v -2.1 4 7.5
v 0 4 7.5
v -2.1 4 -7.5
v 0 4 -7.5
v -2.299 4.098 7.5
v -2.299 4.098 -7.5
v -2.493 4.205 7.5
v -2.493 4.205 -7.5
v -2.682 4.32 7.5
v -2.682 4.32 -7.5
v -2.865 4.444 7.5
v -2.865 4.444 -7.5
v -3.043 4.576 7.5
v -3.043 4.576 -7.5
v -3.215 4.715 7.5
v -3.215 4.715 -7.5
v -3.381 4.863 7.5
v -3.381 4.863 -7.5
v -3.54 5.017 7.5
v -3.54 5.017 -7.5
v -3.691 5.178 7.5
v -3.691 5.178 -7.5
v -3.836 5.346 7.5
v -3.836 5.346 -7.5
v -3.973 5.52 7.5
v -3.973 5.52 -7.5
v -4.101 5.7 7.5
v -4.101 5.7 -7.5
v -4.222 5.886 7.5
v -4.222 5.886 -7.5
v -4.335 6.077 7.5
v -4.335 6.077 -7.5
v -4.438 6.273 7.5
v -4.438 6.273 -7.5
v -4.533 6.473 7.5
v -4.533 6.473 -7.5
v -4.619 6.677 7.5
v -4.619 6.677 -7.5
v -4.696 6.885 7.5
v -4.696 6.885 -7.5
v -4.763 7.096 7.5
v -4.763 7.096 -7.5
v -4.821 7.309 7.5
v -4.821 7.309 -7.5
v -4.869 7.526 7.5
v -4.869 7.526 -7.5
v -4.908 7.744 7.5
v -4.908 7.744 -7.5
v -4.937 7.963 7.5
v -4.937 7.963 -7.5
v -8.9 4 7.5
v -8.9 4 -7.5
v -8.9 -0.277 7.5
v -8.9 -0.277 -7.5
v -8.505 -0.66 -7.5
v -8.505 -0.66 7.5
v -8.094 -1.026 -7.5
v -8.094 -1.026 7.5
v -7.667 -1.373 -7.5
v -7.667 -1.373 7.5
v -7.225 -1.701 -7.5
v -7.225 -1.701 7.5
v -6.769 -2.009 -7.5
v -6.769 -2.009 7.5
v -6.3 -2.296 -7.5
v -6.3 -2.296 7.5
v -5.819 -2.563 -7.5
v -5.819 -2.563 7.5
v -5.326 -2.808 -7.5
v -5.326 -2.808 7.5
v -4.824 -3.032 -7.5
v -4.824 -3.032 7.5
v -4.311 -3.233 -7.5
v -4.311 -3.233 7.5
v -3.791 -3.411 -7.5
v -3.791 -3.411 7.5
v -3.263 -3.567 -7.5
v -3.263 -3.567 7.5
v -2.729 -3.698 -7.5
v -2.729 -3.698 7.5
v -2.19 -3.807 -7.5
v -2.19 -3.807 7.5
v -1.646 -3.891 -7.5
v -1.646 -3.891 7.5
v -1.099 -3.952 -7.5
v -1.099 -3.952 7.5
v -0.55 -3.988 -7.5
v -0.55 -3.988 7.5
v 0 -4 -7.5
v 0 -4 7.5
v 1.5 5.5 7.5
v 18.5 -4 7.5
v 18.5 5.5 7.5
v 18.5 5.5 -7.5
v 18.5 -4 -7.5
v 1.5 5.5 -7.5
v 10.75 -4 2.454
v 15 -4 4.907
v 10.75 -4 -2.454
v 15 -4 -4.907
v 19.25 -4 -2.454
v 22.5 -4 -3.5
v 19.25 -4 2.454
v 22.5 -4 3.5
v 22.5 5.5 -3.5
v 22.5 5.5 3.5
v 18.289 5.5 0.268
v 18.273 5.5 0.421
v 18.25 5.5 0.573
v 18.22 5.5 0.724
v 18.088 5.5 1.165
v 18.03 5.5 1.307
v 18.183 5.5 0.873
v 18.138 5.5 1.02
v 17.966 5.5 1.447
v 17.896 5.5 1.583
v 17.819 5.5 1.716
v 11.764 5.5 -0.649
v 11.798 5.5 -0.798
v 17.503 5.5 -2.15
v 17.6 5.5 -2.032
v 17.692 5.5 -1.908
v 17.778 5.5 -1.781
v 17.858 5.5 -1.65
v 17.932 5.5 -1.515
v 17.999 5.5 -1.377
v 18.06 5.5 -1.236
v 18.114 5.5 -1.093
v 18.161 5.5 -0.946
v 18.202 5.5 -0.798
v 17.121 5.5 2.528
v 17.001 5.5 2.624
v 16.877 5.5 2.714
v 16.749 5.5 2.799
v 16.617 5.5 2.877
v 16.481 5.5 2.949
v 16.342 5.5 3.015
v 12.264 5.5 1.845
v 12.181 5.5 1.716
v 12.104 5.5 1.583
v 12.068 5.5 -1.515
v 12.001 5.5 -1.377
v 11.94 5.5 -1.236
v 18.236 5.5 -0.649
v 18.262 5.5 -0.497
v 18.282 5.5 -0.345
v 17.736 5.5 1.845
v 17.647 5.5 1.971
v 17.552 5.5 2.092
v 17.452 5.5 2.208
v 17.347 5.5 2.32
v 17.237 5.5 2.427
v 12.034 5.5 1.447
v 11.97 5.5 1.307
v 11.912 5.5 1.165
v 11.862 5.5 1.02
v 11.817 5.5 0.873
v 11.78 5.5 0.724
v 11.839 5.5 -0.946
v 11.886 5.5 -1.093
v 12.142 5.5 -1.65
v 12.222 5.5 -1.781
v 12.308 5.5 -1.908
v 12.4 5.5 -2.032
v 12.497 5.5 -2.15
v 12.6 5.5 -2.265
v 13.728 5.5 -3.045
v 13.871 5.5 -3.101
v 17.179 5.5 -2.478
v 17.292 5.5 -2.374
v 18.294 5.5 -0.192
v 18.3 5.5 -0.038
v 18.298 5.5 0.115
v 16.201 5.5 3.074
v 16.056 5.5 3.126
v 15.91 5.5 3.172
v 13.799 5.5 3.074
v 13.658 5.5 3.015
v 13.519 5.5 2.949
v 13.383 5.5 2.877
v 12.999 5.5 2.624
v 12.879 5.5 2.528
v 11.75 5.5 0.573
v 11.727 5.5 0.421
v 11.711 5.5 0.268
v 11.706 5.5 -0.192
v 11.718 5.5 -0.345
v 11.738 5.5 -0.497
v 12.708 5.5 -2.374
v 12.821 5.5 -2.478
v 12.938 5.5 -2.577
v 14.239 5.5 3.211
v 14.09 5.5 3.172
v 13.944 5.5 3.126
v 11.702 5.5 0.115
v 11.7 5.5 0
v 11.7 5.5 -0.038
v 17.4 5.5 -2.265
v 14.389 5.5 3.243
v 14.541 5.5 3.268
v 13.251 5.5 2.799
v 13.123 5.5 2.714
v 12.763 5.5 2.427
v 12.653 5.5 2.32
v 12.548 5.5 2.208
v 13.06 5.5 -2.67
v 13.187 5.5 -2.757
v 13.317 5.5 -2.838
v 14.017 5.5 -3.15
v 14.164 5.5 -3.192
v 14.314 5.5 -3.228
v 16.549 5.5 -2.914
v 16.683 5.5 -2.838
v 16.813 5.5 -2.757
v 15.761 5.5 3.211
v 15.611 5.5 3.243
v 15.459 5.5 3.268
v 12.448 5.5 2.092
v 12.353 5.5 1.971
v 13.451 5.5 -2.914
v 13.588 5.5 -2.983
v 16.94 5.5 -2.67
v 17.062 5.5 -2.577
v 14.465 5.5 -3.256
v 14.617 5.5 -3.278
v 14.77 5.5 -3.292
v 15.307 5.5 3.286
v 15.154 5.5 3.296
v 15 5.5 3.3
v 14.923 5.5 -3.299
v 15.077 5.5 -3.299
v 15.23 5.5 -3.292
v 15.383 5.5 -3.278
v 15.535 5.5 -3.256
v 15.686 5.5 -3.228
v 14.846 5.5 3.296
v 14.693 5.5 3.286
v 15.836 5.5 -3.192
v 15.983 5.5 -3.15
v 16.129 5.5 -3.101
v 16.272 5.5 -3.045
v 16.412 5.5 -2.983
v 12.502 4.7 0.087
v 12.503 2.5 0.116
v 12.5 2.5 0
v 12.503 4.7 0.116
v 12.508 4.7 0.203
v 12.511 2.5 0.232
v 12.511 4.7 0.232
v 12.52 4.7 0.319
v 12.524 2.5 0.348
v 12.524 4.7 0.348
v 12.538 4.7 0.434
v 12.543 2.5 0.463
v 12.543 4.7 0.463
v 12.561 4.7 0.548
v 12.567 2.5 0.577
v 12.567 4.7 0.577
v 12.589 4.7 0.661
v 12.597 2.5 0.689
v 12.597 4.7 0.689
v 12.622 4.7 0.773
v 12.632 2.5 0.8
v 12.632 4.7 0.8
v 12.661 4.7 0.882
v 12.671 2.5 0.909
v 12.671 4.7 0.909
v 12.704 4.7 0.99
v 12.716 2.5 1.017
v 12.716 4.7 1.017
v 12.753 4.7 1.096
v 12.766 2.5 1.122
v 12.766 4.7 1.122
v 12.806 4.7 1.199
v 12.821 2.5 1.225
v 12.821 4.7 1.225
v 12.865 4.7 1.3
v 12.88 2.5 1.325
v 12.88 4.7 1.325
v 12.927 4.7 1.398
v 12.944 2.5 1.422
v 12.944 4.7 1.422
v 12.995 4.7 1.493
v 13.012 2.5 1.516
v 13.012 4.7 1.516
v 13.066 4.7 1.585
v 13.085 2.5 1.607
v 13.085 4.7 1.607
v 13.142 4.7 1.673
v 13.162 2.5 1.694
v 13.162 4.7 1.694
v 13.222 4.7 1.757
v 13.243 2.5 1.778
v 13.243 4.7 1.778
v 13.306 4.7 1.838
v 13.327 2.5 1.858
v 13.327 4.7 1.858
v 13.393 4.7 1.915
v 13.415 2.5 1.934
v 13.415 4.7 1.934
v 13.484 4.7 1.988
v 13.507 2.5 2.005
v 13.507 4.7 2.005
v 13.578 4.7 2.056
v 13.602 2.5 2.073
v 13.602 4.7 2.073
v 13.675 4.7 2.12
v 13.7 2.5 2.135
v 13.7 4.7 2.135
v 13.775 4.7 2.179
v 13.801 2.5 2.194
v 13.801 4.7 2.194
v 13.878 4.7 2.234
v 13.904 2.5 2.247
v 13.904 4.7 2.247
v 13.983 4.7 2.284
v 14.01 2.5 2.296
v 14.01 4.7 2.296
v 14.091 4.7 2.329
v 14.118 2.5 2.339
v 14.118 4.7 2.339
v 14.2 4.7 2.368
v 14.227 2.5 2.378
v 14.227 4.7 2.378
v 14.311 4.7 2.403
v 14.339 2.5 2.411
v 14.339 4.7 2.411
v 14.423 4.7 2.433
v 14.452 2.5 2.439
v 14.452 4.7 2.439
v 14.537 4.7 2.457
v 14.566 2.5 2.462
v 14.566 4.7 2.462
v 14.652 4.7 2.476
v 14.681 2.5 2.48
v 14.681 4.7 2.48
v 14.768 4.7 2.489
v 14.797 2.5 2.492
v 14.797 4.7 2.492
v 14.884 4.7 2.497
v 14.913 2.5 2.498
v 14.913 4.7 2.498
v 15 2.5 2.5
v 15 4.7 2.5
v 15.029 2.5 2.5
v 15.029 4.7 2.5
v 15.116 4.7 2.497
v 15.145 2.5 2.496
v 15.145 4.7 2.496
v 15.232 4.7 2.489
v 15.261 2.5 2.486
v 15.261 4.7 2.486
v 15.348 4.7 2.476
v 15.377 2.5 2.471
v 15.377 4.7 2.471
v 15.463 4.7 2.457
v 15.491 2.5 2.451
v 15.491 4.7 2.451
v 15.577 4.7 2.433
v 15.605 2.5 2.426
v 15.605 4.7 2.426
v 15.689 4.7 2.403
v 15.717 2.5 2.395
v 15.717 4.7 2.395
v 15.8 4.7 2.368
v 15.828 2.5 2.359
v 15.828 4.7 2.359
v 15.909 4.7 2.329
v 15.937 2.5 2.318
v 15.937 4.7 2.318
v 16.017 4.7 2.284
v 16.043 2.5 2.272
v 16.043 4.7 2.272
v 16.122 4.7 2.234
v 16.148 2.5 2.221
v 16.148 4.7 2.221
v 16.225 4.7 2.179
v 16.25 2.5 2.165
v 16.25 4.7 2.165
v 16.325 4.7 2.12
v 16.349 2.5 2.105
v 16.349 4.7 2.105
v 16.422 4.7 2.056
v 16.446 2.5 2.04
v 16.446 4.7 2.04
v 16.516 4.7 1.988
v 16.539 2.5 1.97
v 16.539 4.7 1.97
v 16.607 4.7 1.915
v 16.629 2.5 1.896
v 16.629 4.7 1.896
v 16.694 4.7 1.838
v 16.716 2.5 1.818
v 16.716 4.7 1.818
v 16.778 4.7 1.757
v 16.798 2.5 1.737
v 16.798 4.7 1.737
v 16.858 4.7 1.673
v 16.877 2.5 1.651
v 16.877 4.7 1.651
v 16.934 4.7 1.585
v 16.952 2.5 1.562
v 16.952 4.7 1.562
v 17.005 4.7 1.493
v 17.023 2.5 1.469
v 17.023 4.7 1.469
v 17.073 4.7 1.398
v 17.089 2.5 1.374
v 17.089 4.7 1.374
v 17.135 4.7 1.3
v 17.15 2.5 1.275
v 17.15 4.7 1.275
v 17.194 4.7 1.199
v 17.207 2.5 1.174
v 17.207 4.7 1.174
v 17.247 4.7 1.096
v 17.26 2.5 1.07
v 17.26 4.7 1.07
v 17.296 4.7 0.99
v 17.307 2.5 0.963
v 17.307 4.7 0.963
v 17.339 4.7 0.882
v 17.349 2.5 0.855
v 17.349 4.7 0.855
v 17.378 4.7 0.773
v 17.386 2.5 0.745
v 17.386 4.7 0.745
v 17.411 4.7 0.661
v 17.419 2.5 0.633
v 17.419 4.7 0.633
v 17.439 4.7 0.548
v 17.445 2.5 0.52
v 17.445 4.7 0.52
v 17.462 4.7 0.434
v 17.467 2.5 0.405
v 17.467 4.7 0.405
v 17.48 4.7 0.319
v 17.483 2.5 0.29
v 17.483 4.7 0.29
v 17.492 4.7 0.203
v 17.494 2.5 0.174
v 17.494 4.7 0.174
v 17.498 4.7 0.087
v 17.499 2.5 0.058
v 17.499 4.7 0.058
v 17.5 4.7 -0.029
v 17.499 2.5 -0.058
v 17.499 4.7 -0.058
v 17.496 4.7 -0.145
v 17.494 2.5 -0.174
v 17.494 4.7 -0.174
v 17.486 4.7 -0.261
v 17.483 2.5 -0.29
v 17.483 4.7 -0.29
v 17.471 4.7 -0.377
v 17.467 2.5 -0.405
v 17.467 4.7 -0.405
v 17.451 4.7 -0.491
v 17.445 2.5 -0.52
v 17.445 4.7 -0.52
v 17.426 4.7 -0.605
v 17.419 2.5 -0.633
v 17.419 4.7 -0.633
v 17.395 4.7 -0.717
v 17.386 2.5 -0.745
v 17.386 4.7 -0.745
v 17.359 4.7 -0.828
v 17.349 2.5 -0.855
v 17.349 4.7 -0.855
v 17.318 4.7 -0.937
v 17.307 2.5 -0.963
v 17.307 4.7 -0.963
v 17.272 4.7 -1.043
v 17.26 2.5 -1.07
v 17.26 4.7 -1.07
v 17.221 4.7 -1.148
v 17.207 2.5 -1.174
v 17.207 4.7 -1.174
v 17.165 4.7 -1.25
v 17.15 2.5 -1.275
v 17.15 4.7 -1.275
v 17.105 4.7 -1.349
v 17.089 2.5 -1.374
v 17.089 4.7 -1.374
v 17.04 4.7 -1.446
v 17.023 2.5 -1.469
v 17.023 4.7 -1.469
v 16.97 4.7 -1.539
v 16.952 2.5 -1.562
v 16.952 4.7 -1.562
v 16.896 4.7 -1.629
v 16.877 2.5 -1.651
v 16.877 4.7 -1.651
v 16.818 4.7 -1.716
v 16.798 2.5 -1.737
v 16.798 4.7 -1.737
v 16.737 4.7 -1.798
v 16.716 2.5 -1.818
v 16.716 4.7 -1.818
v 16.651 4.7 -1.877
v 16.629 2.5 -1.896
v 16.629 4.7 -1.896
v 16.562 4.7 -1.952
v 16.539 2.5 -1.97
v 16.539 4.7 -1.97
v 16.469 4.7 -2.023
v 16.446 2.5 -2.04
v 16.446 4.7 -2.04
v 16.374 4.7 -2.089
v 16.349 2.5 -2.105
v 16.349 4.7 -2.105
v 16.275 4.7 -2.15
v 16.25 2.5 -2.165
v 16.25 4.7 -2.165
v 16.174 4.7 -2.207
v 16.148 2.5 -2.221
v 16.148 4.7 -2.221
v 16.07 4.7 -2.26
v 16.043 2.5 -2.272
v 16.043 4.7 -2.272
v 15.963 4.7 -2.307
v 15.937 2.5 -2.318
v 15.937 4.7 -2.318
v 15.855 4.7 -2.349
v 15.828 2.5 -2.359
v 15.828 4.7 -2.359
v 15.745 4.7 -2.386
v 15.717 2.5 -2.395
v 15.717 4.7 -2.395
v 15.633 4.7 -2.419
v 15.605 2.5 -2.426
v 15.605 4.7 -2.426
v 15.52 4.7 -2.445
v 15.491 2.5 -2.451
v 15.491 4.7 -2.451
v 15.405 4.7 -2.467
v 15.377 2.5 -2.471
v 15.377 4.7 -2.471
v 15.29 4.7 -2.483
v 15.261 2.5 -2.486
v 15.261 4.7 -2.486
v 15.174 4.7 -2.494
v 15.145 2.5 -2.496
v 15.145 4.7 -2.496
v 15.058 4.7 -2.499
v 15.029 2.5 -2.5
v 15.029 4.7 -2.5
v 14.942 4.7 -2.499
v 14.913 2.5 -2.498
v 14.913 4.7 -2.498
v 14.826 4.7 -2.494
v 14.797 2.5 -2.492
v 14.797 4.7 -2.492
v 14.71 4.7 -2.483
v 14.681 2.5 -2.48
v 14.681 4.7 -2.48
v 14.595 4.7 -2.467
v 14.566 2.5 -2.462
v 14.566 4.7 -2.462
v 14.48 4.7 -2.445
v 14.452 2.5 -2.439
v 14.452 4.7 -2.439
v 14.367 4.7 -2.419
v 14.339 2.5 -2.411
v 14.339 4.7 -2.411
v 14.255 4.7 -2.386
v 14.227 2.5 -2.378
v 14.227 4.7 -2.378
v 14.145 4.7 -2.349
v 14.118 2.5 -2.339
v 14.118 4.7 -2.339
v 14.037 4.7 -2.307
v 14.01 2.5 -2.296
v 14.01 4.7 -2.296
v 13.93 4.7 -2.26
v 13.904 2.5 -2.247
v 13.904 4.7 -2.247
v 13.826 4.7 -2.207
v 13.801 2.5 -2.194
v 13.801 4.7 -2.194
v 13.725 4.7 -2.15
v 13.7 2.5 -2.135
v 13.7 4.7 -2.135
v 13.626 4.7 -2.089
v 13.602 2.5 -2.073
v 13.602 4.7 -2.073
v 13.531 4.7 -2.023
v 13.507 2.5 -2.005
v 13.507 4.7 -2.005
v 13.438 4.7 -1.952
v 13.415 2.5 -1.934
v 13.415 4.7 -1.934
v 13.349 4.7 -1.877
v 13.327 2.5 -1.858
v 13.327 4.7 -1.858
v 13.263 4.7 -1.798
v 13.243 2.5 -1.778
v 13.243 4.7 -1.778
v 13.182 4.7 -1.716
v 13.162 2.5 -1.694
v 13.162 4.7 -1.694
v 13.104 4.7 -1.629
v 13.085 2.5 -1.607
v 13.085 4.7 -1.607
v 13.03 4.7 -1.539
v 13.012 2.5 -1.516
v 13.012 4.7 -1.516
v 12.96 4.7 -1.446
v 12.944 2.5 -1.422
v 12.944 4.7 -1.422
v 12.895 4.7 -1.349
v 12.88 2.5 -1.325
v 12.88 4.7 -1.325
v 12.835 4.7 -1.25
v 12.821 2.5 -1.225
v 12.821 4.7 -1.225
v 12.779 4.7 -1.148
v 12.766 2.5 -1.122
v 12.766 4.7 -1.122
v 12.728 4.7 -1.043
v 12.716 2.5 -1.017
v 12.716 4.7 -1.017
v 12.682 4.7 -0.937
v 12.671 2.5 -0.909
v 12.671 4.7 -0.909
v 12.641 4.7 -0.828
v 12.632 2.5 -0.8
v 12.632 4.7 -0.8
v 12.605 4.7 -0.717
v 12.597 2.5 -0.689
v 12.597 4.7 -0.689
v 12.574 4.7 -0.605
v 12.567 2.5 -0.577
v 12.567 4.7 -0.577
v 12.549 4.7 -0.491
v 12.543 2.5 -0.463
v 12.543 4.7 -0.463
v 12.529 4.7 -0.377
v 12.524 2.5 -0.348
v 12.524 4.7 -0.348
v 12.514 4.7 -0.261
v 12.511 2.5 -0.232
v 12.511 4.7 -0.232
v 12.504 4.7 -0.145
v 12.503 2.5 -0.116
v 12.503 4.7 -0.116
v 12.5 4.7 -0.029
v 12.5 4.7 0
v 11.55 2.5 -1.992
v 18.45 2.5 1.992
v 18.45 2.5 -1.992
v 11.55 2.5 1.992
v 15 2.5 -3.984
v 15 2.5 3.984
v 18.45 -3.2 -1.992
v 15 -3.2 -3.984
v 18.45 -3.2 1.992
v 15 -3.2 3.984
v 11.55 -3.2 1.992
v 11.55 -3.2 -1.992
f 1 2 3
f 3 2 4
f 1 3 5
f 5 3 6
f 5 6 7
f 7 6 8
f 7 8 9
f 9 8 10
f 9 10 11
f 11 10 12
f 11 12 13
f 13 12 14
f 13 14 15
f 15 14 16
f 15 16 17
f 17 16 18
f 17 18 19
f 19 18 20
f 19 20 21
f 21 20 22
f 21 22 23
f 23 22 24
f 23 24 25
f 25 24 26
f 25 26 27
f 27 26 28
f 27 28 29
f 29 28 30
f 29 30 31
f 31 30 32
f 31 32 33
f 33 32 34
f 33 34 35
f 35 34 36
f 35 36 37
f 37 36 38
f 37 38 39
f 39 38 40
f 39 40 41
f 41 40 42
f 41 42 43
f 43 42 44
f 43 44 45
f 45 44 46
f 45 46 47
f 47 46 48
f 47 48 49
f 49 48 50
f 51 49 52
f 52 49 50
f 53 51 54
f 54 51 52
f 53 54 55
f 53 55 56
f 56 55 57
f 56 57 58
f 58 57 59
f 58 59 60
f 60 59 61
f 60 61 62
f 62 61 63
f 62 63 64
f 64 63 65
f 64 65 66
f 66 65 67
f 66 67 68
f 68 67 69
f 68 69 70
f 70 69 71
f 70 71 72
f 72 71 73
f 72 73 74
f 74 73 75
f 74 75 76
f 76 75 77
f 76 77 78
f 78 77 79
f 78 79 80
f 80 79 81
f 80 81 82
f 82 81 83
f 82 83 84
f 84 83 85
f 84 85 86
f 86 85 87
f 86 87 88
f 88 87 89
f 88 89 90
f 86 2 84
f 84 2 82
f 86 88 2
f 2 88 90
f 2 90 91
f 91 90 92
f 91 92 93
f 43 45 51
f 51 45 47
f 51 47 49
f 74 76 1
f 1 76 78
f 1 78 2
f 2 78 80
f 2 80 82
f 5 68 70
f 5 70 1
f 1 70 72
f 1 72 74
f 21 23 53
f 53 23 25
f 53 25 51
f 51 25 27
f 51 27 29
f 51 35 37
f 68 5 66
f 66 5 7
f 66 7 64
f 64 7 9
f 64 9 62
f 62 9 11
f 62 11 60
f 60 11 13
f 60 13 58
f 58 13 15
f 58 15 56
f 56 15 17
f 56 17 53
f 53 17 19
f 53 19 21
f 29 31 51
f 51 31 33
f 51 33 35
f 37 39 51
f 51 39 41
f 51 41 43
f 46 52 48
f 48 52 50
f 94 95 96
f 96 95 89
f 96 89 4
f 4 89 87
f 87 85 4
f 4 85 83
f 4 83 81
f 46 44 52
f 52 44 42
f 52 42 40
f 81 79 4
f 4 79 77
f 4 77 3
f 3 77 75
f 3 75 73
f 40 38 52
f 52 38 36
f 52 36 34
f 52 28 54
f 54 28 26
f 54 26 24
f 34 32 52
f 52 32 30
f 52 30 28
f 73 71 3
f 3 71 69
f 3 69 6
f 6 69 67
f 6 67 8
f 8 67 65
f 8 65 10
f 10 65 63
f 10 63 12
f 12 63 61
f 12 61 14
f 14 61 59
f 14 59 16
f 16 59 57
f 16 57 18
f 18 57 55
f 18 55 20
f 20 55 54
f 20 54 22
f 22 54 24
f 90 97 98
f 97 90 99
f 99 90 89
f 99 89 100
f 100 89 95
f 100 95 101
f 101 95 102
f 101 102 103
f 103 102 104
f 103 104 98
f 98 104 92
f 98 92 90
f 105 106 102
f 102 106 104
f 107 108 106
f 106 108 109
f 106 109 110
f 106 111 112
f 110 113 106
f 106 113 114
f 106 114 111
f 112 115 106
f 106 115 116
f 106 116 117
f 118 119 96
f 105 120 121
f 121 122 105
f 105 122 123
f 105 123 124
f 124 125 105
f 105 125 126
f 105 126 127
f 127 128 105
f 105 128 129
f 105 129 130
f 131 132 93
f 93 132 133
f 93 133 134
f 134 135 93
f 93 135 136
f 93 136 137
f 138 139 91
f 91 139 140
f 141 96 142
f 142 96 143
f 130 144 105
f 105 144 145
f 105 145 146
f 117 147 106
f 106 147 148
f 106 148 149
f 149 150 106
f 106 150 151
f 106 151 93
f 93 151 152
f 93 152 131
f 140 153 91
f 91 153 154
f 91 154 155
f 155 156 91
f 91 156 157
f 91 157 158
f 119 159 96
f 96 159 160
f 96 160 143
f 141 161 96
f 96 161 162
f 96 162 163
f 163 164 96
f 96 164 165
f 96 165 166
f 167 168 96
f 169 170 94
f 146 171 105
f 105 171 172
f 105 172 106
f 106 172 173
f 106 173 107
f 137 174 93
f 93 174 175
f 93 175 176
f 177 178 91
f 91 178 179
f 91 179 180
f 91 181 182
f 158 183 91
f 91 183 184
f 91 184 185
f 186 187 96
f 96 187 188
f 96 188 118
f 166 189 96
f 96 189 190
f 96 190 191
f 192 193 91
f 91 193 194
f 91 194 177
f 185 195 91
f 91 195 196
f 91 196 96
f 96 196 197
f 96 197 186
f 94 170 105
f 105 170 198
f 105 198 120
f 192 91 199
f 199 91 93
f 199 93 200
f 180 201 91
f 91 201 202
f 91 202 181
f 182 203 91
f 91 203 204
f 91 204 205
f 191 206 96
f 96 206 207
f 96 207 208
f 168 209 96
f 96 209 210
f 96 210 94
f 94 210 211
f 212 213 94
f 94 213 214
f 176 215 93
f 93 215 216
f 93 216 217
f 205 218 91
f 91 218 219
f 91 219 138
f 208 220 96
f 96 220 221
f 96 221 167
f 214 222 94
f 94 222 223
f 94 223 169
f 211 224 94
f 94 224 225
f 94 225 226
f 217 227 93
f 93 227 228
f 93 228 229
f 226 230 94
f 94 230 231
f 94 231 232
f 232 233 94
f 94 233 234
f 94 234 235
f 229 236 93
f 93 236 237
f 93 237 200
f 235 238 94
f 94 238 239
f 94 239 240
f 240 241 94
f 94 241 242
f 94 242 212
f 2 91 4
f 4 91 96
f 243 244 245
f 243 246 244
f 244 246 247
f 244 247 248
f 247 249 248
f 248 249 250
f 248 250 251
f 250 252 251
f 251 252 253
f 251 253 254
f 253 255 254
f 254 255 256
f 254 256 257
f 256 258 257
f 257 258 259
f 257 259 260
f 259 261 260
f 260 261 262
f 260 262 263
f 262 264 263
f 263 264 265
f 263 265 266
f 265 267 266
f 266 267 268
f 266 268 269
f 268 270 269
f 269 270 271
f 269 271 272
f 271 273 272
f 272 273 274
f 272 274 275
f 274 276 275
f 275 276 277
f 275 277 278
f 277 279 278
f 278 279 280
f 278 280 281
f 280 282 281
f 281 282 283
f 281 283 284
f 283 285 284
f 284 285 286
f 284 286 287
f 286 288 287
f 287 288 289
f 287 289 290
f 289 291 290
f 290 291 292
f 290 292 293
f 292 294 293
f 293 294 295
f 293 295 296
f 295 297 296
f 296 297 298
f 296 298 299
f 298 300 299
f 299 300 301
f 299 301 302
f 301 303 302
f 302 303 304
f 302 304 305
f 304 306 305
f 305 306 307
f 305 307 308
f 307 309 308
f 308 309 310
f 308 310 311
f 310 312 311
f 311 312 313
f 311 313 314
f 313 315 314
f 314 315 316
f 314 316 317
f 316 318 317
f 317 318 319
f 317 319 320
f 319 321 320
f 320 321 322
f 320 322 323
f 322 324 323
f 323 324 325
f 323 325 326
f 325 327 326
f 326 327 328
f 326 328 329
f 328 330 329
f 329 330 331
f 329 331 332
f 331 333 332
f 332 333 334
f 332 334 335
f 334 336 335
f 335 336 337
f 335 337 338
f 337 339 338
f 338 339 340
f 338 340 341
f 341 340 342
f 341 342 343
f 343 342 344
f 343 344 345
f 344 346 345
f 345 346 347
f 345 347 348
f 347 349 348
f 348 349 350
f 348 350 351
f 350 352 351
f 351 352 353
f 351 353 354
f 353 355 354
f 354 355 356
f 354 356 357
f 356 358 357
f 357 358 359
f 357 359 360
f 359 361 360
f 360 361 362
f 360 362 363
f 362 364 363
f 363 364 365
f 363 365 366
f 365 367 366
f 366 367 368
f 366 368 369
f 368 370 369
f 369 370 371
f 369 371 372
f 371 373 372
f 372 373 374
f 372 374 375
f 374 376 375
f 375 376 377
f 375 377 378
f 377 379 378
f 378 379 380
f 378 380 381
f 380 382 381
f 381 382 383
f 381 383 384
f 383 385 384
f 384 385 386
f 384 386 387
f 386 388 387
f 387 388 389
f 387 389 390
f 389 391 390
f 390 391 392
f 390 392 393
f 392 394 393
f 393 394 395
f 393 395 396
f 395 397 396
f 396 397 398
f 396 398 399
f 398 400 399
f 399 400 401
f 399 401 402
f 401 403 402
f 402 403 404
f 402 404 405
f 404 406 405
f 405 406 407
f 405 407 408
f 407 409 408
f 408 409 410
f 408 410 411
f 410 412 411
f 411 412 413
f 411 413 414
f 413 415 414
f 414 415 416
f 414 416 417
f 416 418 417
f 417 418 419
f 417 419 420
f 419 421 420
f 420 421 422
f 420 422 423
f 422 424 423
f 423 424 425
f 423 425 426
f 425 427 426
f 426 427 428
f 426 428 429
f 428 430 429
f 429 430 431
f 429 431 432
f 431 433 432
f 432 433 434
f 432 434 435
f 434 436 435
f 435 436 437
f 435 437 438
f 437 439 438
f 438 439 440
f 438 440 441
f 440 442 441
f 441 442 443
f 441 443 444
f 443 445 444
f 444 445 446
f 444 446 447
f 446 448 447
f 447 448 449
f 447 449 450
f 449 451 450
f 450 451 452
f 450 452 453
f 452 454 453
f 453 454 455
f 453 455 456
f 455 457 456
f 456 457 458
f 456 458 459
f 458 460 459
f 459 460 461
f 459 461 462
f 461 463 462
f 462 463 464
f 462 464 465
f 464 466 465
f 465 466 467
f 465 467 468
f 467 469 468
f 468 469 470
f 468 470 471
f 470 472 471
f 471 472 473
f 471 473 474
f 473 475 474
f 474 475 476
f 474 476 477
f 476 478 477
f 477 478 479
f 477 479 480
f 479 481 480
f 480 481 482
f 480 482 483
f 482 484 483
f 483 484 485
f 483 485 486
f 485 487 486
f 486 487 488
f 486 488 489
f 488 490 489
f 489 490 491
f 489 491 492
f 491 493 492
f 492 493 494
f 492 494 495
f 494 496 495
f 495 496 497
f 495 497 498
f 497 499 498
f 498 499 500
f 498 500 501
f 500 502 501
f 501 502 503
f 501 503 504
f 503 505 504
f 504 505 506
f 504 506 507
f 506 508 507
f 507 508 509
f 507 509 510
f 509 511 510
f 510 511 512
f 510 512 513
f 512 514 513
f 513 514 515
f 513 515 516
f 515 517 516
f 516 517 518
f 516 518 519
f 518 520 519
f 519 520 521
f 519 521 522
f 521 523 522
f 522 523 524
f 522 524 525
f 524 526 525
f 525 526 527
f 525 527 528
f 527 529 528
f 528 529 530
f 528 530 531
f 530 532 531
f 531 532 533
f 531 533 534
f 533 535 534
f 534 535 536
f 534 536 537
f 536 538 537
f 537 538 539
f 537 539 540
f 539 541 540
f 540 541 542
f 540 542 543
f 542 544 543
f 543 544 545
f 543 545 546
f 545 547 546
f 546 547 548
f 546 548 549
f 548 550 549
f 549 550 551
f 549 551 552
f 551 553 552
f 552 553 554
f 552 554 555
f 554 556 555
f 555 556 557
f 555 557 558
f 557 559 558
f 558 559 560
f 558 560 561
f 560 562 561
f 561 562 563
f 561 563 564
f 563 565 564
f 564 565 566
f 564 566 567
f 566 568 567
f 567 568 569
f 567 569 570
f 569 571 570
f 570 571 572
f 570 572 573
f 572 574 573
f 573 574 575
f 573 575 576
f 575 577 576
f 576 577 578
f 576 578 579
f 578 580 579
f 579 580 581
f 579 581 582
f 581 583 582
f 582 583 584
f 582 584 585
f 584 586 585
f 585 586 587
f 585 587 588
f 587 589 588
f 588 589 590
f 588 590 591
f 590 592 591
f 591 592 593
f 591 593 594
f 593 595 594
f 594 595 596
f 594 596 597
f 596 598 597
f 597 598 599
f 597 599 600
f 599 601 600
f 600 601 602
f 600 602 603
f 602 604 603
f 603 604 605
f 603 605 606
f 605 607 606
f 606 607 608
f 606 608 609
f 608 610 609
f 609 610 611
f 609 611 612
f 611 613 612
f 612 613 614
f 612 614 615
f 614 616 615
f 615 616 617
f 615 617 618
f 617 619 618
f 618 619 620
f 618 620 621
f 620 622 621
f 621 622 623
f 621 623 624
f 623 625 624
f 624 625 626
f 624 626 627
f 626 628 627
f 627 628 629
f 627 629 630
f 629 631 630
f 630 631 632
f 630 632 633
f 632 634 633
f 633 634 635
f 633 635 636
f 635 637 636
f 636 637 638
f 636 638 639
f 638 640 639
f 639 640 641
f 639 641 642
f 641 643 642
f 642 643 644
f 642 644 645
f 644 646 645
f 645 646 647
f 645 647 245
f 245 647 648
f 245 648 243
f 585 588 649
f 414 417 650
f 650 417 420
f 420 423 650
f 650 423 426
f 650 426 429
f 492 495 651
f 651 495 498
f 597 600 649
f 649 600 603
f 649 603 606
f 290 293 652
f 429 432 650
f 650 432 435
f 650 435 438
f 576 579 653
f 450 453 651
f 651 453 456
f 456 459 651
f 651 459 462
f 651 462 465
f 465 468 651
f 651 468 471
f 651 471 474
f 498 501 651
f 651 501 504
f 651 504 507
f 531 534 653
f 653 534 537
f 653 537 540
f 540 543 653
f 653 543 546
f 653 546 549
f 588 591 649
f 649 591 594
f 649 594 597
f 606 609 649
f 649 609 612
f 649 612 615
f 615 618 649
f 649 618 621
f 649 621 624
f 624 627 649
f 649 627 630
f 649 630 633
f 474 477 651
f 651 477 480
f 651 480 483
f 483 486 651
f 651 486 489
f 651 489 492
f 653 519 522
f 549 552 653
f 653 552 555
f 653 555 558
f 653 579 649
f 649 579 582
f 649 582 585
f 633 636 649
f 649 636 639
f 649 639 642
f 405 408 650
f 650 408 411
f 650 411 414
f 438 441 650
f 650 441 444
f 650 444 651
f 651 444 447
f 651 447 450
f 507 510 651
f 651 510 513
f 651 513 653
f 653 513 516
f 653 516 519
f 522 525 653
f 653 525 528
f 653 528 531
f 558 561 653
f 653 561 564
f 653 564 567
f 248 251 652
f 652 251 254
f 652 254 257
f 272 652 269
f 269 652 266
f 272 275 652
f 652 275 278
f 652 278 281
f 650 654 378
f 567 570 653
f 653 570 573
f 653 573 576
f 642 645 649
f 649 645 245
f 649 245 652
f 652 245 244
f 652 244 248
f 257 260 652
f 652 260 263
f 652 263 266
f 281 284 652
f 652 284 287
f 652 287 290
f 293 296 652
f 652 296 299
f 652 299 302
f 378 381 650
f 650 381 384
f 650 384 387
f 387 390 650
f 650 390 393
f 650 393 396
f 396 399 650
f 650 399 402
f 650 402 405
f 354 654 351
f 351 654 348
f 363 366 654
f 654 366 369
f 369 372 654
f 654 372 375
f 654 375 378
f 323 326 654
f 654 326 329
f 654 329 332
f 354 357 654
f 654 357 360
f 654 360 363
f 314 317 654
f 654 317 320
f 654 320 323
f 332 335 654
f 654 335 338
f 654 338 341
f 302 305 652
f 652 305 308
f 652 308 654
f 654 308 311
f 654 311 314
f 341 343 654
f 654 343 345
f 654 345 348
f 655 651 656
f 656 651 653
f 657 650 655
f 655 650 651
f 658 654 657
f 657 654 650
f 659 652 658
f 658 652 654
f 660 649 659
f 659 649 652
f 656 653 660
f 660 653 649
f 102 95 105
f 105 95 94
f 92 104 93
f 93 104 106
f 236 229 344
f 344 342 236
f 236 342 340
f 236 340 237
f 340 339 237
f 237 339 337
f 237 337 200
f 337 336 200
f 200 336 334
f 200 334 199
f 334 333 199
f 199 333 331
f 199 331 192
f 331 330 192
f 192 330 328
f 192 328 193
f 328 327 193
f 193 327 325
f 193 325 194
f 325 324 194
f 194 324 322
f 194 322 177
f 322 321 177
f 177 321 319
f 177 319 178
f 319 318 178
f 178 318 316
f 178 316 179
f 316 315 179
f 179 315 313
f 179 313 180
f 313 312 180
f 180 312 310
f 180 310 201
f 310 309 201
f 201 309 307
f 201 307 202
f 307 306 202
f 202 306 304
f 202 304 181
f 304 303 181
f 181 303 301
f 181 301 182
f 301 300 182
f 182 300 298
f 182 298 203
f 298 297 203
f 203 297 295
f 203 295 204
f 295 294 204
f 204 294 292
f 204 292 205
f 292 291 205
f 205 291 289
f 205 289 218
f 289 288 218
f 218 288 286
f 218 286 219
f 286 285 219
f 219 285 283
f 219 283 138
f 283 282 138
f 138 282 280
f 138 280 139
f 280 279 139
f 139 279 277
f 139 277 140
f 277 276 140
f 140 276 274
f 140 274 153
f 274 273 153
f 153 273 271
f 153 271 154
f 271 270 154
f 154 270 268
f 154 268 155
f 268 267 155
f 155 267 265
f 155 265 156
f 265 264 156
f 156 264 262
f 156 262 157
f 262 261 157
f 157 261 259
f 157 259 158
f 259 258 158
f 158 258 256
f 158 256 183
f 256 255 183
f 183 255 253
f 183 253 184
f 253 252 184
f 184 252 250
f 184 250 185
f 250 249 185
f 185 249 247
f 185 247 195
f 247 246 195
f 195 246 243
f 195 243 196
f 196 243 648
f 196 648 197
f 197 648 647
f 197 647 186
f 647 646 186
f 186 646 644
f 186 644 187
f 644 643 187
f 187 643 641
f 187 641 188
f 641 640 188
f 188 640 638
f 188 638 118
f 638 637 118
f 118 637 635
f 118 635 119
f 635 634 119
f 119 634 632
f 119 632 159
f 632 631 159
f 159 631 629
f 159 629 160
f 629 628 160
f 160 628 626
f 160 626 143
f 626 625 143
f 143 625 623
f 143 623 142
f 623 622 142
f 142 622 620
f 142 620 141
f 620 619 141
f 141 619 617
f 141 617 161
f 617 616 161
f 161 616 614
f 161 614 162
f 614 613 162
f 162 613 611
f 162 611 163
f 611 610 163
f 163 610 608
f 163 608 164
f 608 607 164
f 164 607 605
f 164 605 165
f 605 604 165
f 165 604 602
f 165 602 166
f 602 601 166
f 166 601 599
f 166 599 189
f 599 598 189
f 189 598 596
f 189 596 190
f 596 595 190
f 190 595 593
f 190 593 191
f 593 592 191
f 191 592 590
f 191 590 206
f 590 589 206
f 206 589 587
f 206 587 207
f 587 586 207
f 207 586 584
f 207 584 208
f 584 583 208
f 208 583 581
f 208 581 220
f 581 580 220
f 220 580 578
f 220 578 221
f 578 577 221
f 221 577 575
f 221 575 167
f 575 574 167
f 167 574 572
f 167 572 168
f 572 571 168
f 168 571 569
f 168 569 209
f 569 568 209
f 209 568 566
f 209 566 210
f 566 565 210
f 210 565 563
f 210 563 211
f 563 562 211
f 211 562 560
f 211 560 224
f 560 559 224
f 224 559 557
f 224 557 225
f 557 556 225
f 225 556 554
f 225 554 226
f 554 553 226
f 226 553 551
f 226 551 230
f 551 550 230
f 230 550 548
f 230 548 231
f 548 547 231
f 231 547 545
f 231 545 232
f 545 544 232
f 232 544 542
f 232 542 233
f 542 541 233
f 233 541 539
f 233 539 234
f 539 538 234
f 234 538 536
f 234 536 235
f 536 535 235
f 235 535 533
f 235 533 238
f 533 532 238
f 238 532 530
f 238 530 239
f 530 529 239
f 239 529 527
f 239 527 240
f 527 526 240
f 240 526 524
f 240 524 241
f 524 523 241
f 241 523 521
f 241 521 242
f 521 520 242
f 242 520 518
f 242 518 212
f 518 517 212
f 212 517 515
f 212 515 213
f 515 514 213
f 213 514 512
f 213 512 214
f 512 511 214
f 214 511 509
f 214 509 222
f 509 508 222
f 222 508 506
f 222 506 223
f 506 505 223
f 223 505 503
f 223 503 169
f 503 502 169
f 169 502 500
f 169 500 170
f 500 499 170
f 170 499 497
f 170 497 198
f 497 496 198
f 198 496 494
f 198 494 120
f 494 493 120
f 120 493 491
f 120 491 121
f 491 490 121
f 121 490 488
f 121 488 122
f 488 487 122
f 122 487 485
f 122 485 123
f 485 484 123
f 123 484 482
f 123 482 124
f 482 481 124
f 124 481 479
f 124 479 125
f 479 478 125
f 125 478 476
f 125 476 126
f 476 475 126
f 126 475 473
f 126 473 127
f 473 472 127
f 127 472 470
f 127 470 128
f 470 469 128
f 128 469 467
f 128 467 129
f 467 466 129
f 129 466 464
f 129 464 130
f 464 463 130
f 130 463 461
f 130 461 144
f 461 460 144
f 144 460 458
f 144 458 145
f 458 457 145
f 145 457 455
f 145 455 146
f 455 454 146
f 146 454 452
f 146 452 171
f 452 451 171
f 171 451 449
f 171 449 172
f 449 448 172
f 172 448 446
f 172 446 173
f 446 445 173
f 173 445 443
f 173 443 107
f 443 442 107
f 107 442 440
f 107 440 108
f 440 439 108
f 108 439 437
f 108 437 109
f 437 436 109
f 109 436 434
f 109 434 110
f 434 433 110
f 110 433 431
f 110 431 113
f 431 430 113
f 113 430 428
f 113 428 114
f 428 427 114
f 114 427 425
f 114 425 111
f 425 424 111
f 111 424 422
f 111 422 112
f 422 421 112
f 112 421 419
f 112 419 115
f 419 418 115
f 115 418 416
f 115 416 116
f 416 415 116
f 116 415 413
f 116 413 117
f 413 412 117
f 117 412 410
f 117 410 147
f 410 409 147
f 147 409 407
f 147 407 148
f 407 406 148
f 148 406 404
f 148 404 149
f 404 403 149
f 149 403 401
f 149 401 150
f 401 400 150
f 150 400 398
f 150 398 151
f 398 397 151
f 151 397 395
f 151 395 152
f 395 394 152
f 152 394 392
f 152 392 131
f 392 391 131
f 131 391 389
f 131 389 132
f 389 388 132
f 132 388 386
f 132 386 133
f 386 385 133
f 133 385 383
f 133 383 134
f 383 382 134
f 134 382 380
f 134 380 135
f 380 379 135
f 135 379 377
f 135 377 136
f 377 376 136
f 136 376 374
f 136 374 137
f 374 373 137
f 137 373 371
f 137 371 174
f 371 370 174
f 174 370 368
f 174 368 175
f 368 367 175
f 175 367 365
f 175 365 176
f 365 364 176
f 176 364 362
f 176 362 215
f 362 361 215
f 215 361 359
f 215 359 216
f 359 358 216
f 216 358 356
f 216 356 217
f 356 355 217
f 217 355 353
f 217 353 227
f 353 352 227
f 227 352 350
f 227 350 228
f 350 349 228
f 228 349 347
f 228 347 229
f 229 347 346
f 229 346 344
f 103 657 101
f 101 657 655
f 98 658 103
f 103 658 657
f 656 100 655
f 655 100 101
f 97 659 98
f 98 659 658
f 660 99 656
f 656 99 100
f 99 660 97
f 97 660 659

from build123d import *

# Parameters (mm, degrees)
SALIENTE_EXTRUIR1_DEPTH = 7.5
SALIENTE_EXTRUIR2_DEPTH = 15
CROQUIS7_R              = 2.5
CORTAR_EXTRUIR4_DEPTH   = 10.5
CORTAR_EXTRUIR5_START   = -3
CORTAR_EXTRUIR5_DEPTH   = 10
CHAFL_N4_SIZE           = 4
CHAFL_N5_SIZE           = 0.8


with BuildPart() as part:
    # Croquis1 → Saliente-Extruir1 (new body, symmetric)
    with BuildSketch(Plane.XY):
        with BuildLine():
            Line((-8.9, 4), (-4.936786437, 7.963213563))
            ThreePointArc((-4.936786437, 7.963213563), (-4.038051049, 5.609646436), (-2.1, 4))
            Line((-2.1, 4), (0, 4))
            Line((0, 4), (0, -4))
            ThreePointArc((0, -4), (-4.823611651, -3.031815583), (-8.9, -0.277243303))
            Line((-8.9, -0.277243303), (-8.9, 4))
        make_face()
    extrude(amount=SALIENTE_EXTRUIR1_DEPTH, both=True)

    # Croquis6 → Saliente-Extruir2 (add, through all)
    with BuildSketch(Plane(origin=(0, 0, -7.5), x_dir=(-1, 0, 0), z_dir=(0, 0, -1))):
        Polygon((0, 4), (-1.5, 5.5), (-22.5, 5.5), (-22.5, -4), (0, -4), align=None)
    extrude(amount=-SALIENTE_EXTRUIR2_DEPTH)

    # Croquis7 → Cortar-Extruir4 (cut, through all)
    with BuildSketch(Plane(origin=(0, 5.5, 0), x_dir=(1, 0, 0), z_dir=(0, 1, 0))):
        with Locations((15, 0)):
            Circle(CROQUIS7_R)
    extrude(amount=-CORTAR_EXTRUIR4_DEPTH, mode=Mode.SUBTRACT)

    # Croquis8 → Cortar-Extruir5 (cut)
    with BuildSketch(Plane(origin=(0, 5.5, 0), x_dir=(1, 0, 0), z_dir=(0, 1, 0)).offset(CORTAR_EXTRUIR5_START)):
        Polygon((15, 3.983716857), (11.55, 1.991858429), (11.55, -1.991858429), (15, -3.983716857), (18.45, -1.991858429), (18.45, 1.991858429), align=None)
    extrude(amount=-CORTAR_EXTRUIR5_DEPTH, mode=Mode.SUBTRACT)

    # Chaflán4
    chafl_n4_edges = [part.edges().sort_by_distance(p)[0] for p in [
        (22.5, 0.75, 7.5),
        (22.5, 0.75, -7.5),
    ]]
    chamfer(chafl_n4_edges, length=CHAFL_N4_SIZE)

    # Chaflán5
    chafl_n5_edges = [part.edges().sort_by_distance(p)[0] for p in [
        (12.5, 5.5, 0),
        (13.275, -4, -2.987787643),
        (11.55, -4, 0),
        (13.275, -4, 2.987787643),
        (16.725, -4, 2.987787643),
        (18.45, -4, 0),
        (16.725, -4, -2.987787643),
    ]]
    chamfer(chafl_n5_edges, length=CHAFL_N5_SIZE)


solid = part.part
